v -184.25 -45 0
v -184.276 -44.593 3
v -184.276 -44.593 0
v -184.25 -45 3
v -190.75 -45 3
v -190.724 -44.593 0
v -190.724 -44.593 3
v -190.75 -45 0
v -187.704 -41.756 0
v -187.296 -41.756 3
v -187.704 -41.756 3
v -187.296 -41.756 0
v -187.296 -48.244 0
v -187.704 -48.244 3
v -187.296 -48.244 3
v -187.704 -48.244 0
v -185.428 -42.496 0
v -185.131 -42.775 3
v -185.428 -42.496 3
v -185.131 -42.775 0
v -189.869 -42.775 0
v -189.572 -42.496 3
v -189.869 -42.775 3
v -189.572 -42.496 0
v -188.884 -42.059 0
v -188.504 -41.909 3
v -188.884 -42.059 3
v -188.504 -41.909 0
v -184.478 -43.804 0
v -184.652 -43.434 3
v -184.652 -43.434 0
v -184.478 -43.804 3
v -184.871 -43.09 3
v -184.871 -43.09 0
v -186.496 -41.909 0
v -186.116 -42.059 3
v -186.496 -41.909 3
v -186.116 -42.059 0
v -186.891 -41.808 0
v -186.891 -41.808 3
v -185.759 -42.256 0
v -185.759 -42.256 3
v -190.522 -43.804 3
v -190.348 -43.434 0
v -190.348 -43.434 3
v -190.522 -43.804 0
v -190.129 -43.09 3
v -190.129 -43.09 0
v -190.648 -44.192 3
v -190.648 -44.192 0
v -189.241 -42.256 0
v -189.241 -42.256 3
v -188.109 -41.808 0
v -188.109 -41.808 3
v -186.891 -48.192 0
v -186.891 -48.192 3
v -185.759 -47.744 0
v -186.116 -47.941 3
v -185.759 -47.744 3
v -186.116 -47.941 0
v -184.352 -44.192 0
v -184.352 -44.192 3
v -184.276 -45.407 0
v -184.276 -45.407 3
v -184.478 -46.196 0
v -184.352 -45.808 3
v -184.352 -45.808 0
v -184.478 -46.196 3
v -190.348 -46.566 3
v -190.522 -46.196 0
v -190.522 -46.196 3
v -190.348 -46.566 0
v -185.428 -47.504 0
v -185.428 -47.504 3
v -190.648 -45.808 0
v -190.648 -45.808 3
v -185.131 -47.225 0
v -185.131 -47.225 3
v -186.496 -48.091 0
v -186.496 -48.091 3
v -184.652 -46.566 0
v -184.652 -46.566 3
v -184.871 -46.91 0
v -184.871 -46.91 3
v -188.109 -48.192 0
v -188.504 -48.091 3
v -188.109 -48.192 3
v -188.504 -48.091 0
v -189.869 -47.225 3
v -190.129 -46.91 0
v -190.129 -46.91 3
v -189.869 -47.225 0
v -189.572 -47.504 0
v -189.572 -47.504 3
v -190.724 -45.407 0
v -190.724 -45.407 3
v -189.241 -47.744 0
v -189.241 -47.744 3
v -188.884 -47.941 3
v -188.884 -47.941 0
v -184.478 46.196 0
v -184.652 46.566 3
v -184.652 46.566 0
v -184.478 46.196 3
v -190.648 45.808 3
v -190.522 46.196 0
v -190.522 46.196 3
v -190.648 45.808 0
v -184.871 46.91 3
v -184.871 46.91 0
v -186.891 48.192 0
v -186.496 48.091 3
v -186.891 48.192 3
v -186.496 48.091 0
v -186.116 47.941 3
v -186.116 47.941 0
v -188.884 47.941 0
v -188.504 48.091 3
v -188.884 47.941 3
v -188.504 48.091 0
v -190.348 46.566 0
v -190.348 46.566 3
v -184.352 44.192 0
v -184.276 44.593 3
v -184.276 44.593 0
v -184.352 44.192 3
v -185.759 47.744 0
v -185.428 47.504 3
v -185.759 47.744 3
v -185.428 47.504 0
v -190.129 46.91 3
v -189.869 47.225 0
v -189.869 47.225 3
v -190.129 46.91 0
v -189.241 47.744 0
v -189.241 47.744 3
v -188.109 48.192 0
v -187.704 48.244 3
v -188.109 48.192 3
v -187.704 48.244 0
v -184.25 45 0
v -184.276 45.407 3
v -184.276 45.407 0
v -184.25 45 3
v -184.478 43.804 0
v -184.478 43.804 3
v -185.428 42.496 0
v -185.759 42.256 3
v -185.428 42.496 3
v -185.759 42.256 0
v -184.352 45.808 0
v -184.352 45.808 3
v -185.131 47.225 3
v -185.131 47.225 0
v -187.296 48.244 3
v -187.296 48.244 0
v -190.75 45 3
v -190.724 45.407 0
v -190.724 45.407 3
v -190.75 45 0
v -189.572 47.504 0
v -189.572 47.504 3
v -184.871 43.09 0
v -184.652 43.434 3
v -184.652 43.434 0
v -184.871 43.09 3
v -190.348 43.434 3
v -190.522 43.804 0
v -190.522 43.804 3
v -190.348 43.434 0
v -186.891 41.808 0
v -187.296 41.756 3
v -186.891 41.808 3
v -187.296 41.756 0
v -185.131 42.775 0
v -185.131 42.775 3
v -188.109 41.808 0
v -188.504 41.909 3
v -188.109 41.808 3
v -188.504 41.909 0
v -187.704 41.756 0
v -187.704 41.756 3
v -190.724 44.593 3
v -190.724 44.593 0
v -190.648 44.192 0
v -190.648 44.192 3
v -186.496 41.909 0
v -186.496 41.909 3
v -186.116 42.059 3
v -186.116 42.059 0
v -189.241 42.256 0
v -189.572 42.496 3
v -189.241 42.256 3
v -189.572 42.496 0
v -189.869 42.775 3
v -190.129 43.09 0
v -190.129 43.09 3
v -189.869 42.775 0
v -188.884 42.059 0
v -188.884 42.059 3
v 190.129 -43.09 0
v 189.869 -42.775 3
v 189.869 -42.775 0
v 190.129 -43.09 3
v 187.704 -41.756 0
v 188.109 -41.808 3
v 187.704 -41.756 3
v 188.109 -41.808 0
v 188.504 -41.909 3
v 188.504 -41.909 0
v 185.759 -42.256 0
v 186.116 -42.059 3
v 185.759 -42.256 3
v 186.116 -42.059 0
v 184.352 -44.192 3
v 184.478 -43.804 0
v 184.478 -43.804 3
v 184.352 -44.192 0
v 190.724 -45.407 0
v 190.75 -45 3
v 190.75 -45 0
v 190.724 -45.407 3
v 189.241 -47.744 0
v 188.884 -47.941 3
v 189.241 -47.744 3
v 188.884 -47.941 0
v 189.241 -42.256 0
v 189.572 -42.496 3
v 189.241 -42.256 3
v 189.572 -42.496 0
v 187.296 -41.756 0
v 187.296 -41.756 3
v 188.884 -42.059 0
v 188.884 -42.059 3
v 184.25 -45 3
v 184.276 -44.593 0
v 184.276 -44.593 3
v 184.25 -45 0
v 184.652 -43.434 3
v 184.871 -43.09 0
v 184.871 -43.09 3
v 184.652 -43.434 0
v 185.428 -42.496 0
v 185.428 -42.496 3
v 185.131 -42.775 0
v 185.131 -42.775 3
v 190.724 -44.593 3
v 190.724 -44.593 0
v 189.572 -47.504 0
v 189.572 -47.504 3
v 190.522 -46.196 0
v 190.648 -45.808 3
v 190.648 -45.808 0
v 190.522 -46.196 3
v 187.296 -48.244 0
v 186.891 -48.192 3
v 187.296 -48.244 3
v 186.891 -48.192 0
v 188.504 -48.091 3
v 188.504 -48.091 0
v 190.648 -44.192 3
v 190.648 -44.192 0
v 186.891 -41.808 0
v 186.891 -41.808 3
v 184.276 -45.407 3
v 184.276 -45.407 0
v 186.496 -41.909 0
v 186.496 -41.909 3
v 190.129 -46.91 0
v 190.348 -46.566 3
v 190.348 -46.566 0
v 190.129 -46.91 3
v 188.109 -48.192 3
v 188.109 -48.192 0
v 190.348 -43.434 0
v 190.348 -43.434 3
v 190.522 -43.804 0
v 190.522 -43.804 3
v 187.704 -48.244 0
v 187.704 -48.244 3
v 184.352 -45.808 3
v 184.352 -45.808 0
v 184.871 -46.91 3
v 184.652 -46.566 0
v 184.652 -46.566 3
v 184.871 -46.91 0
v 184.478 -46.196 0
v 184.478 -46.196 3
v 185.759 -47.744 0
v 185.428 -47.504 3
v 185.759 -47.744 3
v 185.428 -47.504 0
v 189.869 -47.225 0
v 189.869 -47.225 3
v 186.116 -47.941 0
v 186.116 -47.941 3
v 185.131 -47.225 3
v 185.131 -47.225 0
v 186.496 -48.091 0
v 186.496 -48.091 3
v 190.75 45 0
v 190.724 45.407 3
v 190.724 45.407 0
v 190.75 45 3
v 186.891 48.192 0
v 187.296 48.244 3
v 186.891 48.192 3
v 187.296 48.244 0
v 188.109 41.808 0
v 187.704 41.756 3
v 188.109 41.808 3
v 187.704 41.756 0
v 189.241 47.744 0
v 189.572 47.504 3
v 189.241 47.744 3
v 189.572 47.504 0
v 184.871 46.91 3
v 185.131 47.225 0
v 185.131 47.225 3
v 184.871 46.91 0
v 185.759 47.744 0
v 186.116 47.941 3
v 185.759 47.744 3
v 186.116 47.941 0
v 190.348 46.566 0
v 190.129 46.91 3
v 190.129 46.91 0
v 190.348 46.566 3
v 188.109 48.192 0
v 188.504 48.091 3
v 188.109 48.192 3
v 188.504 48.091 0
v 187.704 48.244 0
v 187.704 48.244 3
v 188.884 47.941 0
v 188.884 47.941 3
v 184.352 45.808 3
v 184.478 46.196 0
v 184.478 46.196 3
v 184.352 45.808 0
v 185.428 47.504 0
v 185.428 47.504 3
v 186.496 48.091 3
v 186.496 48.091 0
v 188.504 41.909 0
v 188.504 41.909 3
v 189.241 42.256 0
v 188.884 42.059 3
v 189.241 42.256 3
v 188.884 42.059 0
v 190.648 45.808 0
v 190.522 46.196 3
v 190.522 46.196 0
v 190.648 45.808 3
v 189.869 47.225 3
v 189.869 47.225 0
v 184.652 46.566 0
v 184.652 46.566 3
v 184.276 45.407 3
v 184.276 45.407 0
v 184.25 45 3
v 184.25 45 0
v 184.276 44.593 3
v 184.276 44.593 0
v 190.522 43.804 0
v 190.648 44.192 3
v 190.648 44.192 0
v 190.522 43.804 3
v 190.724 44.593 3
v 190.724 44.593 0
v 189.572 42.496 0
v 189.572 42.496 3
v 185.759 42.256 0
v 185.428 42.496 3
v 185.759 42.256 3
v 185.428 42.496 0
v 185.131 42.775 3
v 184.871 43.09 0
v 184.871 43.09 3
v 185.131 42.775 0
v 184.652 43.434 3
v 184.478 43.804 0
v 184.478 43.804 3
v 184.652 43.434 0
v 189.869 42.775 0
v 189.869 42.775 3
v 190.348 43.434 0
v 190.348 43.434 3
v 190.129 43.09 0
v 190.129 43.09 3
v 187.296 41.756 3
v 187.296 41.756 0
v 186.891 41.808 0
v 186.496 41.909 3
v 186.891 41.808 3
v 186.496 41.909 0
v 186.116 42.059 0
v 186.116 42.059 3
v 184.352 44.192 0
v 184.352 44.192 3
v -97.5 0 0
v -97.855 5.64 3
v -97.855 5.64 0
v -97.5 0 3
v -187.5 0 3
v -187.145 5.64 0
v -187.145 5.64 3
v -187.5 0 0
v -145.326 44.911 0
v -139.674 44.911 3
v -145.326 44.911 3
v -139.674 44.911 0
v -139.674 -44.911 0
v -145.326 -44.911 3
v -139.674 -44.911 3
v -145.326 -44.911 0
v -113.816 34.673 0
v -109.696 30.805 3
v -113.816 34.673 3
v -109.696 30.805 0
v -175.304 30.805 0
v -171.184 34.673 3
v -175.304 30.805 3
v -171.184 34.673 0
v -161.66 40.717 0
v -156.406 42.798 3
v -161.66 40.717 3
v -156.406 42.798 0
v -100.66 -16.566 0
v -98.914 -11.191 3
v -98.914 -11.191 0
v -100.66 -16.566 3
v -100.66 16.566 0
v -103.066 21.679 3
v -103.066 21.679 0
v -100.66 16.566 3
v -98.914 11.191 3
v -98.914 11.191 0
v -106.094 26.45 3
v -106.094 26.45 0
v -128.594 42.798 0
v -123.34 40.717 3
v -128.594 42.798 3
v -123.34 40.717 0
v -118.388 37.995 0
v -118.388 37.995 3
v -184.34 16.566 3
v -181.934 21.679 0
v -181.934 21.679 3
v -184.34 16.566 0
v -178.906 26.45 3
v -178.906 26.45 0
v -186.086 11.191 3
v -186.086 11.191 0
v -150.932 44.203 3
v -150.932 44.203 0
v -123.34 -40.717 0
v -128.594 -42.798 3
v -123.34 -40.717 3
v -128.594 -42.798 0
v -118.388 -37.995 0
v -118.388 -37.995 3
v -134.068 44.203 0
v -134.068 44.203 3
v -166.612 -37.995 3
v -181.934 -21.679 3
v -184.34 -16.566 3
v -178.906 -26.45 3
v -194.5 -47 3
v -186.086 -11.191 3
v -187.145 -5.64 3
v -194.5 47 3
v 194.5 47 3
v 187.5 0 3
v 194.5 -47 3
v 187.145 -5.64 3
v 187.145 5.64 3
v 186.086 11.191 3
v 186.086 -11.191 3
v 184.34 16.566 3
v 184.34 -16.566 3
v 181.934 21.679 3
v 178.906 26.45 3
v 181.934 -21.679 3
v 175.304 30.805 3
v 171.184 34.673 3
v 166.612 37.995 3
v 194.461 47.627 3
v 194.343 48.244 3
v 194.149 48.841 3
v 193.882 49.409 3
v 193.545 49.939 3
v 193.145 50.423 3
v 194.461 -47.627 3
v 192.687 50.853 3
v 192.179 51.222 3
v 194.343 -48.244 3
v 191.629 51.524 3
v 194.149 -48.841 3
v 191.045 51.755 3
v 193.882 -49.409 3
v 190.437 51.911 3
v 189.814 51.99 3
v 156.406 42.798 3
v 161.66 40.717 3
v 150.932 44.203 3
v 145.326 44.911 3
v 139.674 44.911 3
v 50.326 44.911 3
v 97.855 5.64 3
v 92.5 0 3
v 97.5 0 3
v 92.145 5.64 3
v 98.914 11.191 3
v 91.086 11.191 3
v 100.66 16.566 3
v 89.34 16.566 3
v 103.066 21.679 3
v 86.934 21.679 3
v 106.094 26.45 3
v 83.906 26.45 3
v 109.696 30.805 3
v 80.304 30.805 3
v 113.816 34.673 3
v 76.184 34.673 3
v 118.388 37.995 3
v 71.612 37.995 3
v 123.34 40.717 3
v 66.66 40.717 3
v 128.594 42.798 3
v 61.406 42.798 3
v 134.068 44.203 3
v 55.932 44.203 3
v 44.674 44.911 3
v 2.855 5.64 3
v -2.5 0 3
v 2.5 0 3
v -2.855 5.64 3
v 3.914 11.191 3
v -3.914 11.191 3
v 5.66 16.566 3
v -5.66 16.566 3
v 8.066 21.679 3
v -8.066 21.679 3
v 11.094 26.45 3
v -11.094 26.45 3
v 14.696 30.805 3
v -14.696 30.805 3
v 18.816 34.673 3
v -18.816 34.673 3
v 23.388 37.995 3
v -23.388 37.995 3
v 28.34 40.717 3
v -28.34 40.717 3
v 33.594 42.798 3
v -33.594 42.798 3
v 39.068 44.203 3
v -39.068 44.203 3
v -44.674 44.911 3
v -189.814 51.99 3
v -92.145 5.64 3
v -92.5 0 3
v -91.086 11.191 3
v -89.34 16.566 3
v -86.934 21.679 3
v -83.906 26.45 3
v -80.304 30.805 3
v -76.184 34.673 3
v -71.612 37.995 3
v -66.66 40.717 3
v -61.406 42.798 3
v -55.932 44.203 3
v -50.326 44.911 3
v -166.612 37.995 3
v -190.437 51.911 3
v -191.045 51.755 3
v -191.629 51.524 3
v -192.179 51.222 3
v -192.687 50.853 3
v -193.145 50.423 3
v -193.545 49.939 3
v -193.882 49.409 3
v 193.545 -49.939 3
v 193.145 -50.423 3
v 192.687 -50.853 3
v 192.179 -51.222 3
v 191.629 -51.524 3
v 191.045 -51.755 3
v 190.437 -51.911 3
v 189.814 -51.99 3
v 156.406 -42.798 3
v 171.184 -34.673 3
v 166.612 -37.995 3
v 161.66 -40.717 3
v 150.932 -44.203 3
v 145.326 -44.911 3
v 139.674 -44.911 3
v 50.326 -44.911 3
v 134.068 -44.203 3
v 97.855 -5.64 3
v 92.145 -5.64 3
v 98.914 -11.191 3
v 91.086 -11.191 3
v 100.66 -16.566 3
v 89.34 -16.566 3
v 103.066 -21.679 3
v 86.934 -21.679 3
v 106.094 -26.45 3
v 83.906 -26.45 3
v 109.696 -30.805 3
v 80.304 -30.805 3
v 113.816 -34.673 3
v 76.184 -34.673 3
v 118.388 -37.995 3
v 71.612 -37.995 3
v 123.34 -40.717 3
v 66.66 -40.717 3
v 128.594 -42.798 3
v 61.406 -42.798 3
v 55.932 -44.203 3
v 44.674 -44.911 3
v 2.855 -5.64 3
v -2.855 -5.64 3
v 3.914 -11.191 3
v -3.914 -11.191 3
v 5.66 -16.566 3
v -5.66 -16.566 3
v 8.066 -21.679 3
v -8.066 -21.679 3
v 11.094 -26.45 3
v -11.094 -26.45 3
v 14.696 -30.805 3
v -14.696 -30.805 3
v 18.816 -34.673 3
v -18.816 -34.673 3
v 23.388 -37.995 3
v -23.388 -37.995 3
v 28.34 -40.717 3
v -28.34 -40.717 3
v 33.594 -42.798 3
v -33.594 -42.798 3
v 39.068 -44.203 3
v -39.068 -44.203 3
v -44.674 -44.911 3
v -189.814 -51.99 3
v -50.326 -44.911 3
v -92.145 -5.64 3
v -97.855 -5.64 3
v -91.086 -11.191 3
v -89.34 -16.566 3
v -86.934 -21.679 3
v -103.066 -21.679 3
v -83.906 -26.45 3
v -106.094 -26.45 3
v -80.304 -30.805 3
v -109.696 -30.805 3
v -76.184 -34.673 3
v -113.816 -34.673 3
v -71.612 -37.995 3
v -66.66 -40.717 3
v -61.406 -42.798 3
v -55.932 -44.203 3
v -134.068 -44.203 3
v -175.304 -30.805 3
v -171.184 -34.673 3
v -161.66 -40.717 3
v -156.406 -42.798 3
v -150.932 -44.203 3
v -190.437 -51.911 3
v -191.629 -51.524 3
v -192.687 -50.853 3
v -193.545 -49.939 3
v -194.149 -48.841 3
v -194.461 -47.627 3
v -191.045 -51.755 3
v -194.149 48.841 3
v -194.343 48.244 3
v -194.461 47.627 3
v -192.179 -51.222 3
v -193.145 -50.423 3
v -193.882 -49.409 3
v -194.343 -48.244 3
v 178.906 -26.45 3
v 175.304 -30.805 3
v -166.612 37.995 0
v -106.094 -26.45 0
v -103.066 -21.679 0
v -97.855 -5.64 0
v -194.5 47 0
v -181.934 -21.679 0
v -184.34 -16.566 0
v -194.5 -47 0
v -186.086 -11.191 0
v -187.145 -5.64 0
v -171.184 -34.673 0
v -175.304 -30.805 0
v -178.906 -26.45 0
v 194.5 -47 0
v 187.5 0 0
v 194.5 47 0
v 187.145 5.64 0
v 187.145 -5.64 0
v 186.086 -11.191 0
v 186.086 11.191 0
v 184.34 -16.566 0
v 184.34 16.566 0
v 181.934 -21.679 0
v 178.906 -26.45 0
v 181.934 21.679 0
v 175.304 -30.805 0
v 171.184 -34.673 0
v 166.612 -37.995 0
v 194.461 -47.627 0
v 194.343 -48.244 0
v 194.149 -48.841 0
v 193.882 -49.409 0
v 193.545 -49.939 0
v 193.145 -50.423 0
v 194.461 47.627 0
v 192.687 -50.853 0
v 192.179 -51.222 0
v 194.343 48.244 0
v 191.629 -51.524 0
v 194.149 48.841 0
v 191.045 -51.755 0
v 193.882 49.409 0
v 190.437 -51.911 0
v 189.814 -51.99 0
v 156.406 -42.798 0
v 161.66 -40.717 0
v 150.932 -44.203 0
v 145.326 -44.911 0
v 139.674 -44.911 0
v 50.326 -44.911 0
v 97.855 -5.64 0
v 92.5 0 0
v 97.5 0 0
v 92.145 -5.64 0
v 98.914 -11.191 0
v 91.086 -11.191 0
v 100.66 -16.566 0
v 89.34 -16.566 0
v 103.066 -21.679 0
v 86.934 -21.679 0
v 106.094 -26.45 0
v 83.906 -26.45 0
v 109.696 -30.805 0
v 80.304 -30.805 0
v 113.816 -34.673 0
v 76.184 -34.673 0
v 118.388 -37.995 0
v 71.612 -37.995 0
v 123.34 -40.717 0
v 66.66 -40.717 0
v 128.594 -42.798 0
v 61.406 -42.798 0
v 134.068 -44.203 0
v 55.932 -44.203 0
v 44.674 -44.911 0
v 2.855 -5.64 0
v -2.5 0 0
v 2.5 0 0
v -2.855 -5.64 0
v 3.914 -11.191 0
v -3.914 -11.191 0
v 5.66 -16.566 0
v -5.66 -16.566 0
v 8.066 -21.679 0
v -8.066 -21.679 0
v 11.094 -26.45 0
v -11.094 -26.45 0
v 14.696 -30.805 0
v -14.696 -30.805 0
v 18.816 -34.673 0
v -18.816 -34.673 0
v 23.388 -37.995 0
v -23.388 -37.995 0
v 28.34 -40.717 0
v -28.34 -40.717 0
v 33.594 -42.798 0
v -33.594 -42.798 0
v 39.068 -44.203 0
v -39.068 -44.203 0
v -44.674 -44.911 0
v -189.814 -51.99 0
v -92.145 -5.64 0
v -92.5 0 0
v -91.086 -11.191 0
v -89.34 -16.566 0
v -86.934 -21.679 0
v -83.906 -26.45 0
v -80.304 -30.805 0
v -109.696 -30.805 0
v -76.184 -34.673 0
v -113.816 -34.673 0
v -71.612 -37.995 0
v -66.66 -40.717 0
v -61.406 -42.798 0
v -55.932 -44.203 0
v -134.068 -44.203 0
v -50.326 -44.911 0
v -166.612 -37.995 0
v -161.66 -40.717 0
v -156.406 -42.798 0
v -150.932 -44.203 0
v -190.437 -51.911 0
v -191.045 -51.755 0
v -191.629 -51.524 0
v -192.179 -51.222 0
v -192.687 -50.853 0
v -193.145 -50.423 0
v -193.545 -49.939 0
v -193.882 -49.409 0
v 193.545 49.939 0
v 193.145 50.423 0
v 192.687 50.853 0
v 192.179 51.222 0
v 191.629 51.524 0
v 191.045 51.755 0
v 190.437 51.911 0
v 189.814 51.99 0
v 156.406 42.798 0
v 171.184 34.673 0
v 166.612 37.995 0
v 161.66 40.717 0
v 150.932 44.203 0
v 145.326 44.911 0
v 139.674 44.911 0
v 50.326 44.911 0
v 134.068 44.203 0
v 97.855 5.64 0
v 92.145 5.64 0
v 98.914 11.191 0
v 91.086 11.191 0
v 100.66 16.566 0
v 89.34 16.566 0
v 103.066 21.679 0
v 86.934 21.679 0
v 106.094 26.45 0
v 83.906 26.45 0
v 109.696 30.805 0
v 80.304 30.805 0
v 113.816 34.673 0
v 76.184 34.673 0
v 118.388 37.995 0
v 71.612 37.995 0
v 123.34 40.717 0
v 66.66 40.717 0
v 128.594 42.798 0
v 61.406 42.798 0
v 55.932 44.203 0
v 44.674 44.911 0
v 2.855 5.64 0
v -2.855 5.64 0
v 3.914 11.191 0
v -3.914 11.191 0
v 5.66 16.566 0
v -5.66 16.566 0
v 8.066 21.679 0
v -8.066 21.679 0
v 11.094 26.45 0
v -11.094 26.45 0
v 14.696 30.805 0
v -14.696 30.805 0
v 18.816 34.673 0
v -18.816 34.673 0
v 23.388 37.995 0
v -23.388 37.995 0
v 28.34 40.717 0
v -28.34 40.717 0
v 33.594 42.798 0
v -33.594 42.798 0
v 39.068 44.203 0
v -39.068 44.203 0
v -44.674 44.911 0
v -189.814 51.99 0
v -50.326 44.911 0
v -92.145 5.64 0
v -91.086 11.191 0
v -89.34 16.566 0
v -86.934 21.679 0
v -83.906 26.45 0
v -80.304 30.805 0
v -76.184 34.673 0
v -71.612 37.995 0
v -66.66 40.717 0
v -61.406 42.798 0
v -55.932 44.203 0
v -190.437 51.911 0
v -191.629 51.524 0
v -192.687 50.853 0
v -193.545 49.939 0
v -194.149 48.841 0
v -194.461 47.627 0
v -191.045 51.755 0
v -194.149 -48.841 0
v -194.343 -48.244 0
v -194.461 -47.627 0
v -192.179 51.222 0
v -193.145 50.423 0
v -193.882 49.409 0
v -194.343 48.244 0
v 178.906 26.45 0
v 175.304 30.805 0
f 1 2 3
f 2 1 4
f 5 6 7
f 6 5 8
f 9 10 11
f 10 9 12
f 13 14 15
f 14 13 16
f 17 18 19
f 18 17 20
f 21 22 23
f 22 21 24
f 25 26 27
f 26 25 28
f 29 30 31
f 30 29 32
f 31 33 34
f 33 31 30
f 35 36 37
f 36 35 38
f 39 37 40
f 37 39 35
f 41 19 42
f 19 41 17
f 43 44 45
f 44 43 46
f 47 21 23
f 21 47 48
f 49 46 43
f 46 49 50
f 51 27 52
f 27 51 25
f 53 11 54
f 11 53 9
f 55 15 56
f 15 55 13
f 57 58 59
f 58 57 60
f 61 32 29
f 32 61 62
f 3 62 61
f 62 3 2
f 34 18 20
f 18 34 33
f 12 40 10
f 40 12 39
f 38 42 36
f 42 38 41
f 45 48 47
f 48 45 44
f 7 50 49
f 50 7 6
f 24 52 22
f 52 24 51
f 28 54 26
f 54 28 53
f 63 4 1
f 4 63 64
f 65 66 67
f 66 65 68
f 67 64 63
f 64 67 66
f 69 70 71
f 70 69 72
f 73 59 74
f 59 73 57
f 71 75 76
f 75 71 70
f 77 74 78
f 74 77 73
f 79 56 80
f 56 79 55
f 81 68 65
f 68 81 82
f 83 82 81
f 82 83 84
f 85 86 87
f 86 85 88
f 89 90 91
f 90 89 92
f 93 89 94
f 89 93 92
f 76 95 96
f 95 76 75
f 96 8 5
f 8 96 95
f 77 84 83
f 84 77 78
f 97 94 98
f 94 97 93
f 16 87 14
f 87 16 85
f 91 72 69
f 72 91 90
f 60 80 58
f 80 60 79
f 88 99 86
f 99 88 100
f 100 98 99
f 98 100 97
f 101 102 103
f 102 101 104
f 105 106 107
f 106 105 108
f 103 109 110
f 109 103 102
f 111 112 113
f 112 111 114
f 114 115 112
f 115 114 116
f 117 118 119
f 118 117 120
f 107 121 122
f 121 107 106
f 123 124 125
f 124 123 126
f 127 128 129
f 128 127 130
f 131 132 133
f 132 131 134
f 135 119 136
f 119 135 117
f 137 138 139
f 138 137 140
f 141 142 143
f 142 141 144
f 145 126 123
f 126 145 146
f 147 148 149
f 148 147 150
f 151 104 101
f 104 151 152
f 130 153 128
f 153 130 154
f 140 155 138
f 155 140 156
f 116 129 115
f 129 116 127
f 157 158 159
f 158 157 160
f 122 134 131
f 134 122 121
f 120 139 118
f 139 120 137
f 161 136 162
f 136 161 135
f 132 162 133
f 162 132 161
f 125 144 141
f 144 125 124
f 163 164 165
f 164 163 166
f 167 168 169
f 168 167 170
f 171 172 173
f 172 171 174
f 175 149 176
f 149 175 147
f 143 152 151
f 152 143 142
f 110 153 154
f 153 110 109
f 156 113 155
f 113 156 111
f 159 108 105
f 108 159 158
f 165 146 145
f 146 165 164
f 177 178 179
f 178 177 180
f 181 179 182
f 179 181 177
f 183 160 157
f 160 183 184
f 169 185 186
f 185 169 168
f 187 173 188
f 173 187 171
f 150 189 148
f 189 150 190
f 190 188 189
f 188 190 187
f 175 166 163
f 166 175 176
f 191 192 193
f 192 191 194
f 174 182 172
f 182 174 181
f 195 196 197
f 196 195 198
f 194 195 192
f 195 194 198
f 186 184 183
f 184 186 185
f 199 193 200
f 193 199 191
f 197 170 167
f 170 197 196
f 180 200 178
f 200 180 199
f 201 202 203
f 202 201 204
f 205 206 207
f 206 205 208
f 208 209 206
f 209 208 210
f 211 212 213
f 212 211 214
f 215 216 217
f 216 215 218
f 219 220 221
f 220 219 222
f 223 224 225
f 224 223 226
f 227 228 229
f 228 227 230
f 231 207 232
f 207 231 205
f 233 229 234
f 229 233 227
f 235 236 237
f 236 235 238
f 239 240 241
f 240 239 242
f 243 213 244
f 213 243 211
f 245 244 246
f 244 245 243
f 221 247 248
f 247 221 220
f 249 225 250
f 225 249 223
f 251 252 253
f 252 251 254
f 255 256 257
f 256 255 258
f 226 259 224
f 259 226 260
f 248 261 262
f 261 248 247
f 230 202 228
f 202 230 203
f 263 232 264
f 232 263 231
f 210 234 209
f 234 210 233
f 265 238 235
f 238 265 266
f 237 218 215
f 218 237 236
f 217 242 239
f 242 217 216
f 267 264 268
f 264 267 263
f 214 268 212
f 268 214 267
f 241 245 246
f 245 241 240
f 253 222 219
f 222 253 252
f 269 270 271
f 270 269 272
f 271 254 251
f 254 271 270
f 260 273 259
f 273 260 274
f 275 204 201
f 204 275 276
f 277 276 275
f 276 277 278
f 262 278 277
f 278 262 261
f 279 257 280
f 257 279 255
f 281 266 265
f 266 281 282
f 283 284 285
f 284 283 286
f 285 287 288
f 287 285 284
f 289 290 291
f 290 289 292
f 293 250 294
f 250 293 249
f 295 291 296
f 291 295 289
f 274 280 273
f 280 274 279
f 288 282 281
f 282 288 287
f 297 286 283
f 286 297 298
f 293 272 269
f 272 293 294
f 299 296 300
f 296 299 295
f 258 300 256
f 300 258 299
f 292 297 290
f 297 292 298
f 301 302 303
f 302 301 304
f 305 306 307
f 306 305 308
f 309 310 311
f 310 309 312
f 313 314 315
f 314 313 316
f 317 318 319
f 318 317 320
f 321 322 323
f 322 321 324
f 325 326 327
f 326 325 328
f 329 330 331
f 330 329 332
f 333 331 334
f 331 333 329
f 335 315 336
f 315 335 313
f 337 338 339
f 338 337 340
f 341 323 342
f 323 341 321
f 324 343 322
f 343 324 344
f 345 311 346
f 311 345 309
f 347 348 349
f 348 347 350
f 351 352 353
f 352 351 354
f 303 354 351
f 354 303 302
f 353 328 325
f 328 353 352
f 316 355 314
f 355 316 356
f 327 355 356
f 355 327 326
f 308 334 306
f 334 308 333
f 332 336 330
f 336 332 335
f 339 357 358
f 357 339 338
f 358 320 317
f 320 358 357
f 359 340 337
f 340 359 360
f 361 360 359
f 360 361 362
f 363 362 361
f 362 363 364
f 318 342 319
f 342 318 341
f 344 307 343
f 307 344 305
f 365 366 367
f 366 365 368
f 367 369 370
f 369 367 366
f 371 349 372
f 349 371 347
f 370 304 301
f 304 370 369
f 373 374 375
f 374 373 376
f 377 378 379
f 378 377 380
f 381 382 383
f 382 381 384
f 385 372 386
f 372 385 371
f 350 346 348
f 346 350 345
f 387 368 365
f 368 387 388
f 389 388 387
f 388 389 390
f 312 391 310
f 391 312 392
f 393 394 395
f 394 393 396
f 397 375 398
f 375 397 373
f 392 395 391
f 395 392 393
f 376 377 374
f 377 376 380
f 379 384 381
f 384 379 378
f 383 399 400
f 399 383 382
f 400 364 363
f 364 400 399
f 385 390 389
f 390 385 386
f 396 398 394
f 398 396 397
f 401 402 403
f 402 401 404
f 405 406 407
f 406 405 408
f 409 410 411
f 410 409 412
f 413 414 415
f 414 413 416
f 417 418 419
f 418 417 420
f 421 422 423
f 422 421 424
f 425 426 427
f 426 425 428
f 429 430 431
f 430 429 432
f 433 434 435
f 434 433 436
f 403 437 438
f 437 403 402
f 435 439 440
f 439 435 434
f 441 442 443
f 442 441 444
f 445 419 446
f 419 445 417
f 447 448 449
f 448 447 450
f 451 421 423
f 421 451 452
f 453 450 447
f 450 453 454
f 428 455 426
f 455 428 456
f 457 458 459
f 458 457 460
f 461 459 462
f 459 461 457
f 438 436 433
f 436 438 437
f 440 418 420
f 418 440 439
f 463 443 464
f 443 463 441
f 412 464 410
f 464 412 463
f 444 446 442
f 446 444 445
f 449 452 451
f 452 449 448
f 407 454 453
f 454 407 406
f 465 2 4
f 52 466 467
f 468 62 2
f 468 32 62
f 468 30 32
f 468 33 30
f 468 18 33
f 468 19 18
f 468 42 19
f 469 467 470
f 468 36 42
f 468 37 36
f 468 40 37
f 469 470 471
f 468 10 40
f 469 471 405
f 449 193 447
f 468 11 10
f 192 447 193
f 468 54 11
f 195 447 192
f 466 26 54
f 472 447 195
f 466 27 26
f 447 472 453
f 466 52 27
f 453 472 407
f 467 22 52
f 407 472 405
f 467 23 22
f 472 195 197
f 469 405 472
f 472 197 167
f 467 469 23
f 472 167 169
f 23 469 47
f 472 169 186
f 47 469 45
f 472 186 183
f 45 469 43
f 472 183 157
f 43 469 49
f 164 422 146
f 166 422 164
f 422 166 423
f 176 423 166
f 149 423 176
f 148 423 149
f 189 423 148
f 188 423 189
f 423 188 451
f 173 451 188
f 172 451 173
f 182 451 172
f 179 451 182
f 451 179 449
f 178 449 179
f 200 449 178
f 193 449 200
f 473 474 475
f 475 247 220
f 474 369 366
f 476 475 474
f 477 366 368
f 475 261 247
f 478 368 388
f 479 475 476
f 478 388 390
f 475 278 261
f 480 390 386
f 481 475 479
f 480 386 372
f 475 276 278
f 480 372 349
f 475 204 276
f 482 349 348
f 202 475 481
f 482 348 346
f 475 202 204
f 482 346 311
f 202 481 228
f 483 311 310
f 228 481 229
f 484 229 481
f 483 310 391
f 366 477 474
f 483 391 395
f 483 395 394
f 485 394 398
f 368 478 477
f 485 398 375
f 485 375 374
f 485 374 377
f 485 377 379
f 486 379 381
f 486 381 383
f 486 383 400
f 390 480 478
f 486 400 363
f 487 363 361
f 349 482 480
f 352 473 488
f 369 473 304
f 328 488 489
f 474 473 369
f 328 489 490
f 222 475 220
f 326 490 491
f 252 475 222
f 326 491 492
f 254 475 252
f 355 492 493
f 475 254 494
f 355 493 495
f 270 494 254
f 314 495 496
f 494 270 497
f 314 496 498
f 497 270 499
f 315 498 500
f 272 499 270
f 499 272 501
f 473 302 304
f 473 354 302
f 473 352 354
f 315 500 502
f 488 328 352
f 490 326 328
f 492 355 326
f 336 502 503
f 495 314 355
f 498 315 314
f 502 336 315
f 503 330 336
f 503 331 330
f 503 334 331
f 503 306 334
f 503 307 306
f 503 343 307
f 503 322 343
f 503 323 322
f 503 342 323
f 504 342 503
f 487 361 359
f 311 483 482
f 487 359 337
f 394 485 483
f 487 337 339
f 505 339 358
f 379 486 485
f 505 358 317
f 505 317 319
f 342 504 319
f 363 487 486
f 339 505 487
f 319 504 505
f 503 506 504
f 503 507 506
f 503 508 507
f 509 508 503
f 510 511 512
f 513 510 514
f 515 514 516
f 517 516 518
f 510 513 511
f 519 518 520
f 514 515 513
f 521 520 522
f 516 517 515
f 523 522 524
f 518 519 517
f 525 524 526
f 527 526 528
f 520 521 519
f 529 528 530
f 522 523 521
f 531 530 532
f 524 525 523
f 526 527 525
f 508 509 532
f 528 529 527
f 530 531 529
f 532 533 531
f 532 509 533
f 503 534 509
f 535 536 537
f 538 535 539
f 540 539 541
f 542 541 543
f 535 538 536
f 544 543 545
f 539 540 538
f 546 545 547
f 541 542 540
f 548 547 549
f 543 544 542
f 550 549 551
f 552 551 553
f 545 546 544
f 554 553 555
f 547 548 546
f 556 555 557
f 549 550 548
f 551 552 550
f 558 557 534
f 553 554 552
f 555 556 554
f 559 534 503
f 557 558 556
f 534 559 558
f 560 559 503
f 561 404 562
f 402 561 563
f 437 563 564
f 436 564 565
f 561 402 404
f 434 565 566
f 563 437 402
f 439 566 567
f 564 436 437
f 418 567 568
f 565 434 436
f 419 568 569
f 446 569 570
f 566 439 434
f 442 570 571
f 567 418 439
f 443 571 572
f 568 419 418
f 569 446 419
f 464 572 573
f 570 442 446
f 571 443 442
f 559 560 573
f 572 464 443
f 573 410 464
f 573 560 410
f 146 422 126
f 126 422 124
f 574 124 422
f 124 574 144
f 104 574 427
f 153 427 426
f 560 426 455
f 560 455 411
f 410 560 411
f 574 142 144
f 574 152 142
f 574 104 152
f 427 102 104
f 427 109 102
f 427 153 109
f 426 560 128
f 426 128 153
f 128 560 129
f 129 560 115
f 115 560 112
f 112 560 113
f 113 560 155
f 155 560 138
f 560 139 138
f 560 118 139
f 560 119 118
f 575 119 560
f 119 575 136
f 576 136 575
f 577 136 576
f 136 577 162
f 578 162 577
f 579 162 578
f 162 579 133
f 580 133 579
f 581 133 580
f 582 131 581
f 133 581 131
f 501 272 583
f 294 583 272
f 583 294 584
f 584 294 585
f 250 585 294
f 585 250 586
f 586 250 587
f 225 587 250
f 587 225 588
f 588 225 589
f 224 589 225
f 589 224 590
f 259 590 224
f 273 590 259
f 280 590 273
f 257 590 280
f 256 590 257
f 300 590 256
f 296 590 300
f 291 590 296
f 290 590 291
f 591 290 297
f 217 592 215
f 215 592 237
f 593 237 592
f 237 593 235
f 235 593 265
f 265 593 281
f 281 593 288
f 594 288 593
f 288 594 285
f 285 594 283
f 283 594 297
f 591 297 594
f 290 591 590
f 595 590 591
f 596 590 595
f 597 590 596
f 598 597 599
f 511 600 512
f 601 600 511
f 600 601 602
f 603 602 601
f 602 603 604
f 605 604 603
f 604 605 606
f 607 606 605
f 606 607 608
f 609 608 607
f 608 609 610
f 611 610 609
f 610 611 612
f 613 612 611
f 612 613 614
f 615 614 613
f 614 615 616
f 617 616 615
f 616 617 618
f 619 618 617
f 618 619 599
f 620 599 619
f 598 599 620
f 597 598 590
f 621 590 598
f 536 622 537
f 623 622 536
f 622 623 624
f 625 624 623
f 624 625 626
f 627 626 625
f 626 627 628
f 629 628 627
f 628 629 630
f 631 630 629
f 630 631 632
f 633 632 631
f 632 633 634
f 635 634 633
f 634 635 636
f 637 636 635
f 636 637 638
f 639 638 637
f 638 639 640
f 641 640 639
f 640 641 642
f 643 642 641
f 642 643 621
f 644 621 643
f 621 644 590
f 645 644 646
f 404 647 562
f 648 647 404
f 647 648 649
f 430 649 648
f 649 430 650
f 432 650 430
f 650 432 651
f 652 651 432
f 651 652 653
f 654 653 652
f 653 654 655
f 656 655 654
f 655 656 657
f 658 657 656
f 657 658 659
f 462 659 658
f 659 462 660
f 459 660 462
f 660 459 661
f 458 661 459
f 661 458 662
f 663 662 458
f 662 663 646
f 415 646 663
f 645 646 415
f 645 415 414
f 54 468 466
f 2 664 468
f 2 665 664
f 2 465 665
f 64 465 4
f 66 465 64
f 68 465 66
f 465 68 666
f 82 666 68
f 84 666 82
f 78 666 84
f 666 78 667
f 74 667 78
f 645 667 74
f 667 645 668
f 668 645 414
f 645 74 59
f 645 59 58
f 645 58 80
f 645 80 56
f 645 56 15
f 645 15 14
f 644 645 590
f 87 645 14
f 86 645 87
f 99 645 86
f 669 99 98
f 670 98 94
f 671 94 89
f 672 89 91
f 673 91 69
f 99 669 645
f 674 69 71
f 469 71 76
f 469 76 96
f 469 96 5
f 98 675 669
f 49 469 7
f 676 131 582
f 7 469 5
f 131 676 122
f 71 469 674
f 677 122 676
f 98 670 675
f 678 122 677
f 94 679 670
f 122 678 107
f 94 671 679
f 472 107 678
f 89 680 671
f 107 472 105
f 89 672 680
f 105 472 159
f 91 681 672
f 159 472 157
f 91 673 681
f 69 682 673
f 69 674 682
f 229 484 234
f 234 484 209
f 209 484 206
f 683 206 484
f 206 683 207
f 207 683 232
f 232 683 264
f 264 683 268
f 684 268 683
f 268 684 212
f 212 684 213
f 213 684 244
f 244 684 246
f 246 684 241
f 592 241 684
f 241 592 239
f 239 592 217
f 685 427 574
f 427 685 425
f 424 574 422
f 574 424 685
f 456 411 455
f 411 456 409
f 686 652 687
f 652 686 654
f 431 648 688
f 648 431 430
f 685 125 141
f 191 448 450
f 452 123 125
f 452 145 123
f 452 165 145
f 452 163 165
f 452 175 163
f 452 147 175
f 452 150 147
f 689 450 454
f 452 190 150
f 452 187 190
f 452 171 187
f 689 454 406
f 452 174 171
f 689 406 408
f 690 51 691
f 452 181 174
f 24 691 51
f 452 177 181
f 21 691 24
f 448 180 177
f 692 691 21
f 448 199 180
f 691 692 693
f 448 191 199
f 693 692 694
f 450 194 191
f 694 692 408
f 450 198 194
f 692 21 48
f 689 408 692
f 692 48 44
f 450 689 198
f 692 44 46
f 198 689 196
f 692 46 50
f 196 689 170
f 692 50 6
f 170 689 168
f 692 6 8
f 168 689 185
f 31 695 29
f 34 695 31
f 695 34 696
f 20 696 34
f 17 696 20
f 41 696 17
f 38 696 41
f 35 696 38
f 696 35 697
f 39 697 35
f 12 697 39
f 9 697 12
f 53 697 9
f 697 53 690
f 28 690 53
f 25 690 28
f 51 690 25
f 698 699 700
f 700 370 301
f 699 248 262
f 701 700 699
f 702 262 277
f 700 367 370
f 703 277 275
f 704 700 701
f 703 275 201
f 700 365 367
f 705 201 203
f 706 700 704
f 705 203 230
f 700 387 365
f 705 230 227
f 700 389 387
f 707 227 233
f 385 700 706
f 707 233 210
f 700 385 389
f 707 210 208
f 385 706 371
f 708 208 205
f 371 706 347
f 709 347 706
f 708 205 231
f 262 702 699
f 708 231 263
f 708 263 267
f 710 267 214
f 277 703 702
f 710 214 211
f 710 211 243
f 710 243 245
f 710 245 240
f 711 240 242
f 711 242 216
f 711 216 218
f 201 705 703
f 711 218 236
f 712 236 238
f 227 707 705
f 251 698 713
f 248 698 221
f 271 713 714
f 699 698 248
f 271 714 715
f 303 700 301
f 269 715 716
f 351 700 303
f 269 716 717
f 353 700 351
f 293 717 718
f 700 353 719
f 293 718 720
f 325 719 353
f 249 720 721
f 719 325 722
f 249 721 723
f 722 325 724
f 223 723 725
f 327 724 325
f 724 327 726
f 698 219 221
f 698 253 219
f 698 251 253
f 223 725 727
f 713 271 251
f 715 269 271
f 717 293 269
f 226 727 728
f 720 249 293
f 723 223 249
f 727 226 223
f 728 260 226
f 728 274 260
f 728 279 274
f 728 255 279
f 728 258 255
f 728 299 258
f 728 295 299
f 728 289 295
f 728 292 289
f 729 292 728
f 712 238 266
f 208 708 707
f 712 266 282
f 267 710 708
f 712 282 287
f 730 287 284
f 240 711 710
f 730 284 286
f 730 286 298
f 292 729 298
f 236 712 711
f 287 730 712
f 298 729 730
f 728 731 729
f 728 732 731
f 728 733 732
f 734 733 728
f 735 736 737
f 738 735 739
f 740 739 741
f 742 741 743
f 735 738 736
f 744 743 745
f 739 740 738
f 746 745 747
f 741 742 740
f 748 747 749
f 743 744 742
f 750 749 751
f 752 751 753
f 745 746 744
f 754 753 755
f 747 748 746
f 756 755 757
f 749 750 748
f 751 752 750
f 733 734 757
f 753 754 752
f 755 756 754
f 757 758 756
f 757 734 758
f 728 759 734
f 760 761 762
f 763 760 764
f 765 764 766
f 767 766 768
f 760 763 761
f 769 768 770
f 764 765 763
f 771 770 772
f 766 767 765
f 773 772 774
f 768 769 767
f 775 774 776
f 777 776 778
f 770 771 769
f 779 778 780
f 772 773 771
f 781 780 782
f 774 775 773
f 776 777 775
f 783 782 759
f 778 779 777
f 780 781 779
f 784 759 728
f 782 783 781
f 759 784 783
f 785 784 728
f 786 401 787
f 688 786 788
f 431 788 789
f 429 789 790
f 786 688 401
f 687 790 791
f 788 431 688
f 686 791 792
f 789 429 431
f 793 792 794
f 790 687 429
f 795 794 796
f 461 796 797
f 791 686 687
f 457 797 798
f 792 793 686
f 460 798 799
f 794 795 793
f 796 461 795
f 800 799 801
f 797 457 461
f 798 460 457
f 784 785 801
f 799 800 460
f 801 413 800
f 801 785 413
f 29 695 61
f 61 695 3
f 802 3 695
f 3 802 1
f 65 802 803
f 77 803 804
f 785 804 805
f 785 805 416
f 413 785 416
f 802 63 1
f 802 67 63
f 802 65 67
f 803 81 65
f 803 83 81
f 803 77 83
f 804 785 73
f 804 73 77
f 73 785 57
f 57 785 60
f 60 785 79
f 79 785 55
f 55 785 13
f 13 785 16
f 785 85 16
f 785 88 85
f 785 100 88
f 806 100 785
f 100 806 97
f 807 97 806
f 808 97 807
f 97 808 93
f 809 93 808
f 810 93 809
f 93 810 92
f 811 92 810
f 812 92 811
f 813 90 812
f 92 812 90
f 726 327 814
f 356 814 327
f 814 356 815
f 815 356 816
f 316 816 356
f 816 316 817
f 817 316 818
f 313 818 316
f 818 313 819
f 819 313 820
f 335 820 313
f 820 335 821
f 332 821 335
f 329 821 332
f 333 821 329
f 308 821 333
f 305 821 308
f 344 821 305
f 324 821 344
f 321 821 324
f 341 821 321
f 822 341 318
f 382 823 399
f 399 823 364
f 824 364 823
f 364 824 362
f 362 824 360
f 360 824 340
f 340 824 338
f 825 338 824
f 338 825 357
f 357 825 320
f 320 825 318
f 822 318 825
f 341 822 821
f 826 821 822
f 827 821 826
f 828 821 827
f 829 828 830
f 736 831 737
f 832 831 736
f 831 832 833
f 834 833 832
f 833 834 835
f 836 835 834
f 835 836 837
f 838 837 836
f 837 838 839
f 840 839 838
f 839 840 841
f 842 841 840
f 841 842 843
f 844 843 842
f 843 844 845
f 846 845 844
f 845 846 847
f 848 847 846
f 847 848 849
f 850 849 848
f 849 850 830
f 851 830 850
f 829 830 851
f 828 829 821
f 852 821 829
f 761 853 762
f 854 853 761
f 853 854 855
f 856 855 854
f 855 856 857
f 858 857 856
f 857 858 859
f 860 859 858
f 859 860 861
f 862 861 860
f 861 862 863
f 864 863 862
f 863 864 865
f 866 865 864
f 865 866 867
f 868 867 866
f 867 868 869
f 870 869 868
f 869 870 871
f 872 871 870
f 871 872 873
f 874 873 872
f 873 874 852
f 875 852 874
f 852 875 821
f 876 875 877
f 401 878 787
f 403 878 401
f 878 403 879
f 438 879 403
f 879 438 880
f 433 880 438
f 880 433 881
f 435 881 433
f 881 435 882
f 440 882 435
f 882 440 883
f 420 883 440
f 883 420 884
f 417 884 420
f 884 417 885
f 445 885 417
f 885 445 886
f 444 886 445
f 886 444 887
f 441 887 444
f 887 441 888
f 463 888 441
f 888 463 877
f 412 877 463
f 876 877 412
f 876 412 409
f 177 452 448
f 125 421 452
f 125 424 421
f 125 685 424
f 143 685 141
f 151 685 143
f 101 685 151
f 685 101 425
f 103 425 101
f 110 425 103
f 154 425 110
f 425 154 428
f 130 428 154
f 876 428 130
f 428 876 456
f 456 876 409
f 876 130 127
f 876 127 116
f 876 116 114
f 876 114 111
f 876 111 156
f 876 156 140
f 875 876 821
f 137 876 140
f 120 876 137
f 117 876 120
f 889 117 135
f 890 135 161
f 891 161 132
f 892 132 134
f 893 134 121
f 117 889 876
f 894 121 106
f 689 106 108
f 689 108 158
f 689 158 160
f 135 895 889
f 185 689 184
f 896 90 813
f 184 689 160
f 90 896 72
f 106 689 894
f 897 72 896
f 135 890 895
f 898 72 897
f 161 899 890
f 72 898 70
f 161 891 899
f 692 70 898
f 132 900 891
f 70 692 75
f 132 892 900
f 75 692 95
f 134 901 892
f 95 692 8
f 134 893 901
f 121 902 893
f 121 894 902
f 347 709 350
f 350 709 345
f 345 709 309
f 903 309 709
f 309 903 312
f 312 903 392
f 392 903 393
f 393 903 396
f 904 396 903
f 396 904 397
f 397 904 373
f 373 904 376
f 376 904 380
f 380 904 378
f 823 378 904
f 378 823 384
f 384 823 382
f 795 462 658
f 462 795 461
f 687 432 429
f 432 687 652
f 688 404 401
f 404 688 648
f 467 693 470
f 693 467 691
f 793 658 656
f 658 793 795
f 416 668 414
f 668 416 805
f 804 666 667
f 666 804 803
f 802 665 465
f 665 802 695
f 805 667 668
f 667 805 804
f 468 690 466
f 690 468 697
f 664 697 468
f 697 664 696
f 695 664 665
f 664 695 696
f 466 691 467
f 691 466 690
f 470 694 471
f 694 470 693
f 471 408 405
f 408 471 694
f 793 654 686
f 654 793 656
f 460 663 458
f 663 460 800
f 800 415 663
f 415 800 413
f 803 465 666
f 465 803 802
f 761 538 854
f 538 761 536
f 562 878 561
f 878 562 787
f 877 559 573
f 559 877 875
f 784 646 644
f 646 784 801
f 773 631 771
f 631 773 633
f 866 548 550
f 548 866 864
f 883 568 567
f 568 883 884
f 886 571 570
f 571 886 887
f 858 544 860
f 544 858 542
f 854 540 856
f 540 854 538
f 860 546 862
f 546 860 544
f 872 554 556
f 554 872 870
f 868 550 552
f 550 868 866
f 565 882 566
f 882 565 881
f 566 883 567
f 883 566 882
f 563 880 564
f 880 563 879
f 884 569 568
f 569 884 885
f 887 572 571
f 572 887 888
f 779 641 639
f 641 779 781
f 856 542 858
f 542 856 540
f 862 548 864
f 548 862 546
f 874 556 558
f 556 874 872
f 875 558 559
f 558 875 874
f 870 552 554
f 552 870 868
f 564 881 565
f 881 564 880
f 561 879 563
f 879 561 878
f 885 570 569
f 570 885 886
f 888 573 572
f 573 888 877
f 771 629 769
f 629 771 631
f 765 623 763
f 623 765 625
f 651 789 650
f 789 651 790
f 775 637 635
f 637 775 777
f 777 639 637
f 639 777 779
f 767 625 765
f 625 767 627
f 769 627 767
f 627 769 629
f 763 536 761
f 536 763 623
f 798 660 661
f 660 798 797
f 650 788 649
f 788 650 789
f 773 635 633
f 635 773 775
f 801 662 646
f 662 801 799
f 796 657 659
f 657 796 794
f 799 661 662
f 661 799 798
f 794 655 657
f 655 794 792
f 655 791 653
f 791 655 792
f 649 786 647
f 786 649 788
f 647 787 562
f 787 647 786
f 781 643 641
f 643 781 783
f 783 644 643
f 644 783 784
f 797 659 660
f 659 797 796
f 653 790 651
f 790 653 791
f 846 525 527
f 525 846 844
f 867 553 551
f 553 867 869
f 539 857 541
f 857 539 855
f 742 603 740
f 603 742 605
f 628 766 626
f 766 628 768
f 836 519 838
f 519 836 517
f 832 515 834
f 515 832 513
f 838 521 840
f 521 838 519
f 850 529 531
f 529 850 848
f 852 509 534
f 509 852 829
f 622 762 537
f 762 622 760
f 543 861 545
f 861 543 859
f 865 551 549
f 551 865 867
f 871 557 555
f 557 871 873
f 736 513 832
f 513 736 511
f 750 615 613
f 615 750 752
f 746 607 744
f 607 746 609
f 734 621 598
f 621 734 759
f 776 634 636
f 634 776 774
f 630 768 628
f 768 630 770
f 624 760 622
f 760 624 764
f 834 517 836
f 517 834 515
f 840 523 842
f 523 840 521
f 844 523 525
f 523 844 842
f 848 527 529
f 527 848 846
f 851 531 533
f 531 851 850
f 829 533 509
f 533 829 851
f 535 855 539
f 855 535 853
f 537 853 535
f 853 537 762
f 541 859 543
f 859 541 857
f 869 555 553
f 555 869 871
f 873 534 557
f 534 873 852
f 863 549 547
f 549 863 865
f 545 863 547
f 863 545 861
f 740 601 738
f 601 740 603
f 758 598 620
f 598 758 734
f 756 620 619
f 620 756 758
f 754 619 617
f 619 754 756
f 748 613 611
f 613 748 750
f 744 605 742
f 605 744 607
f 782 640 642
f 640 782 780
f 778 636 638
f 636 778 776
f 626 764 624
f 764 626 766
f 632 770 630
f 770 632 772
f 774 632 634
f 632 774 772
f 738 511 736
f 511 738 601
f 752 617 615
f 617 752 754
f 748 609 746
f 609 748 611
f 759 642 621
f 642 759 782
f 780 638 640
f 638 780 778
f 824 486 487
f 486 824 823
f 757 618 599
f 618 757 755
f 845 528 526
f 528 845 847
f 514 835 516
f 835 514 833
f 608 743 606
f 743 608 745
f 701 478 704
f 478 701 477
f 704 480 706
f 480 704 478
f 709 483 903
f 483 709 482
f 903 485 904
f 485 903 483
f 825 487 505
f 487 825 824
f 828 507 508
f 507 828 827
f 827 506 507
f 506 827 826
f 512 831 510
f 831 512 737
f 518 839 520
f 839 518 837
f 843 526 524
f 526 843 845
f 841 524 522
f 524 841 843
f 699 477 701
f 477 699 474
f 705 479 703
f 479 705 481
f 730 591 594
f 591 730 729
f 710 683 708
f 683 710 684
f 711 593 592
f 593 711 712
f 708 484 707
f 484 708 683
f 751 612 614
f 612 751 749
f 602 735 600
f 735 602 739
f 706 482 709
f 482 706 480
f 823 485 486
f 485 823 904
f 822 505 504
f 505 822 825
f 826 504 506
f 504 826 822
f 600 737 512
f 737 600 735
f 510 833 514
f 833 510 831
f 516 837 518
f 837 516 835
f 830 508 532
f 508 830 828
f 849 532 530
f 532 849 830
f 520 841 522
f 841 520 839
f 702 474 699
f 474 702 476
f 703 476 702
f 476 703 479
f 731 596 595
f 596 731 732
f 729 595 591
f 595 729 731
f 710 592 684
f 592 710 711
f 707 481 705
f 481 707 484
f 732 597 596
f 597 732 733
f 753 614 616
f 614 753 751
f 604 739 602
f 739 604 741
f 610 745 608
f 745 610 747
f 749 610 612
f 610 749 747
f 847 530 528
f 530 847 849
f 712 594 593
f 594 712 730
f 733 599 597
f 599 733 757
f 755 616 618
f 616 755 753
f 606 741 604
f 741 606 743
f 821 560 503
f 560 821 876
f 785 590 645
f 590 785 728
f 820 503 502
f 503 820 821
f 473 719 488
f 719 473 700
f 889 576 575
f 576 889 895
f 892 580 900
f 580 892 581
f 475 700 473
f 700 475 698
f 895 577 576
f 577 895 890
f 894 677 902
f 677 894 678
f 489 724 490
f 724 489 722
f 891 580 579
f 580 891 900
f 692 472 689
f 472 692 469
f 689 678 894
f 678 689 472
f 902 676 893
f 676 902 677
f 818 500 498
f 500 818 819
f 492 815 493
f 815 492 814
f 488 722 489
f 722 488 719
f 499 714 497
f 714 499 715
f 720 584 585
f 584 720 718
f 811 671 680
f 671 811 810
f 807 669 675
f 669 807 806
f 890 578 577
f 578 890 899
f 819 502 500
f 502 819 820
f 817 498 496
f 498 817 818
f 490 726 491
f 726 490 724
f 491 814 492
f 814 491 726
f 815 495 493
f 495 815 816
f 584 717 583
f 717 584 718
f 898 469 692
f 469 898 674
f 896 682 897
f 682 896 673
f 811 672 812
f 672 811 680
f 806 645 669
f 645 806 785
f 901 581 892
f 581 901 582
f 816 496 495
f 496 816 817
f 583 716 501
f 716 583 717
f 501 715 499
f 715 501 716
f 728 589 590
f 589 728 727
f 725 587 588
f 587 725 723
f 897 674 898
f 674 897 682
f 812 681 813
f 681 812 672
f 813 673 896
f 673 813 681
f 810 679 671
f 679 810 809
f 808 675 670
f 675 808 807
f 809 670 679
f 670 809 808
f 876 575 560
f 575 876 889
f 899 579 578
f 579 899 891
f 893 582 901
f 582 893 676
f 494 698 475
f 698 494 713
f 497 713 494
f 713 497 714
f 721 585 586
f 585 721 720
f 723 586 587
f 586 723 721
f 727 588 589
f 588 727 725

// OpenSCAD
$fn = 50;


difference() {
	union() {
		hull() {
			translate(v = [-189.5000000000, 47.0000000000, 0]) {
				cylinder(h = 3, r = 5);
			}
			translate(v = [189.5000000000, 47.0000000000, 0]) {
				cylinder(h = 3, r = 5);
			}
			translate(v = [-189.5000000000, -47.0000000000, 0]) {
				cylinder(h = 3, r = 5);
			}
			translate(v = [189.5000000000, -47.0000000000, 0]) {
				cylinder(h = 3, r = 5);
			}
		}
	}
	union() {
		#translate(v = [-187.5000000000, -45.0000000000, -100.0000000000]) {
			cylinder(h = 200, r = 3.2500000000);
		}
		#translate(v = [-187.5000000000, 45.0000000000, -100.0000000000]) {
			cylinder(h = 200, r = 3.2500000000);
		}
		#translate(v = [187.5000000000, -45.0000000000, -100.0000000000]) {
			cylinder(h = 200, r = 3.2500000000);
		}
		#translate(v = [187.5000000000, 45.0000000000, -100.0000000000]) {
			cylinder(h = 200, r = 3.2500000000);
		}
		#translate(v = [-142.5000000000, 0, 0]) {
			cylinder(h = 3, r = 45.0000000000);
		}
		#translate(v = [-47.5000000000, 0, 0]) {
			cylinder(h = 3, r = 45.0000000000);
		}
		#translate(v = [47.5000000000, 0, 0]) {
			cylinder(h = 3, r = 45.0000000000);
		}
		#translate(v = [142.5000000000, 0, 0]) {
			cylinder(h = 3, r = 45.0000000000);
		}
	}
}
